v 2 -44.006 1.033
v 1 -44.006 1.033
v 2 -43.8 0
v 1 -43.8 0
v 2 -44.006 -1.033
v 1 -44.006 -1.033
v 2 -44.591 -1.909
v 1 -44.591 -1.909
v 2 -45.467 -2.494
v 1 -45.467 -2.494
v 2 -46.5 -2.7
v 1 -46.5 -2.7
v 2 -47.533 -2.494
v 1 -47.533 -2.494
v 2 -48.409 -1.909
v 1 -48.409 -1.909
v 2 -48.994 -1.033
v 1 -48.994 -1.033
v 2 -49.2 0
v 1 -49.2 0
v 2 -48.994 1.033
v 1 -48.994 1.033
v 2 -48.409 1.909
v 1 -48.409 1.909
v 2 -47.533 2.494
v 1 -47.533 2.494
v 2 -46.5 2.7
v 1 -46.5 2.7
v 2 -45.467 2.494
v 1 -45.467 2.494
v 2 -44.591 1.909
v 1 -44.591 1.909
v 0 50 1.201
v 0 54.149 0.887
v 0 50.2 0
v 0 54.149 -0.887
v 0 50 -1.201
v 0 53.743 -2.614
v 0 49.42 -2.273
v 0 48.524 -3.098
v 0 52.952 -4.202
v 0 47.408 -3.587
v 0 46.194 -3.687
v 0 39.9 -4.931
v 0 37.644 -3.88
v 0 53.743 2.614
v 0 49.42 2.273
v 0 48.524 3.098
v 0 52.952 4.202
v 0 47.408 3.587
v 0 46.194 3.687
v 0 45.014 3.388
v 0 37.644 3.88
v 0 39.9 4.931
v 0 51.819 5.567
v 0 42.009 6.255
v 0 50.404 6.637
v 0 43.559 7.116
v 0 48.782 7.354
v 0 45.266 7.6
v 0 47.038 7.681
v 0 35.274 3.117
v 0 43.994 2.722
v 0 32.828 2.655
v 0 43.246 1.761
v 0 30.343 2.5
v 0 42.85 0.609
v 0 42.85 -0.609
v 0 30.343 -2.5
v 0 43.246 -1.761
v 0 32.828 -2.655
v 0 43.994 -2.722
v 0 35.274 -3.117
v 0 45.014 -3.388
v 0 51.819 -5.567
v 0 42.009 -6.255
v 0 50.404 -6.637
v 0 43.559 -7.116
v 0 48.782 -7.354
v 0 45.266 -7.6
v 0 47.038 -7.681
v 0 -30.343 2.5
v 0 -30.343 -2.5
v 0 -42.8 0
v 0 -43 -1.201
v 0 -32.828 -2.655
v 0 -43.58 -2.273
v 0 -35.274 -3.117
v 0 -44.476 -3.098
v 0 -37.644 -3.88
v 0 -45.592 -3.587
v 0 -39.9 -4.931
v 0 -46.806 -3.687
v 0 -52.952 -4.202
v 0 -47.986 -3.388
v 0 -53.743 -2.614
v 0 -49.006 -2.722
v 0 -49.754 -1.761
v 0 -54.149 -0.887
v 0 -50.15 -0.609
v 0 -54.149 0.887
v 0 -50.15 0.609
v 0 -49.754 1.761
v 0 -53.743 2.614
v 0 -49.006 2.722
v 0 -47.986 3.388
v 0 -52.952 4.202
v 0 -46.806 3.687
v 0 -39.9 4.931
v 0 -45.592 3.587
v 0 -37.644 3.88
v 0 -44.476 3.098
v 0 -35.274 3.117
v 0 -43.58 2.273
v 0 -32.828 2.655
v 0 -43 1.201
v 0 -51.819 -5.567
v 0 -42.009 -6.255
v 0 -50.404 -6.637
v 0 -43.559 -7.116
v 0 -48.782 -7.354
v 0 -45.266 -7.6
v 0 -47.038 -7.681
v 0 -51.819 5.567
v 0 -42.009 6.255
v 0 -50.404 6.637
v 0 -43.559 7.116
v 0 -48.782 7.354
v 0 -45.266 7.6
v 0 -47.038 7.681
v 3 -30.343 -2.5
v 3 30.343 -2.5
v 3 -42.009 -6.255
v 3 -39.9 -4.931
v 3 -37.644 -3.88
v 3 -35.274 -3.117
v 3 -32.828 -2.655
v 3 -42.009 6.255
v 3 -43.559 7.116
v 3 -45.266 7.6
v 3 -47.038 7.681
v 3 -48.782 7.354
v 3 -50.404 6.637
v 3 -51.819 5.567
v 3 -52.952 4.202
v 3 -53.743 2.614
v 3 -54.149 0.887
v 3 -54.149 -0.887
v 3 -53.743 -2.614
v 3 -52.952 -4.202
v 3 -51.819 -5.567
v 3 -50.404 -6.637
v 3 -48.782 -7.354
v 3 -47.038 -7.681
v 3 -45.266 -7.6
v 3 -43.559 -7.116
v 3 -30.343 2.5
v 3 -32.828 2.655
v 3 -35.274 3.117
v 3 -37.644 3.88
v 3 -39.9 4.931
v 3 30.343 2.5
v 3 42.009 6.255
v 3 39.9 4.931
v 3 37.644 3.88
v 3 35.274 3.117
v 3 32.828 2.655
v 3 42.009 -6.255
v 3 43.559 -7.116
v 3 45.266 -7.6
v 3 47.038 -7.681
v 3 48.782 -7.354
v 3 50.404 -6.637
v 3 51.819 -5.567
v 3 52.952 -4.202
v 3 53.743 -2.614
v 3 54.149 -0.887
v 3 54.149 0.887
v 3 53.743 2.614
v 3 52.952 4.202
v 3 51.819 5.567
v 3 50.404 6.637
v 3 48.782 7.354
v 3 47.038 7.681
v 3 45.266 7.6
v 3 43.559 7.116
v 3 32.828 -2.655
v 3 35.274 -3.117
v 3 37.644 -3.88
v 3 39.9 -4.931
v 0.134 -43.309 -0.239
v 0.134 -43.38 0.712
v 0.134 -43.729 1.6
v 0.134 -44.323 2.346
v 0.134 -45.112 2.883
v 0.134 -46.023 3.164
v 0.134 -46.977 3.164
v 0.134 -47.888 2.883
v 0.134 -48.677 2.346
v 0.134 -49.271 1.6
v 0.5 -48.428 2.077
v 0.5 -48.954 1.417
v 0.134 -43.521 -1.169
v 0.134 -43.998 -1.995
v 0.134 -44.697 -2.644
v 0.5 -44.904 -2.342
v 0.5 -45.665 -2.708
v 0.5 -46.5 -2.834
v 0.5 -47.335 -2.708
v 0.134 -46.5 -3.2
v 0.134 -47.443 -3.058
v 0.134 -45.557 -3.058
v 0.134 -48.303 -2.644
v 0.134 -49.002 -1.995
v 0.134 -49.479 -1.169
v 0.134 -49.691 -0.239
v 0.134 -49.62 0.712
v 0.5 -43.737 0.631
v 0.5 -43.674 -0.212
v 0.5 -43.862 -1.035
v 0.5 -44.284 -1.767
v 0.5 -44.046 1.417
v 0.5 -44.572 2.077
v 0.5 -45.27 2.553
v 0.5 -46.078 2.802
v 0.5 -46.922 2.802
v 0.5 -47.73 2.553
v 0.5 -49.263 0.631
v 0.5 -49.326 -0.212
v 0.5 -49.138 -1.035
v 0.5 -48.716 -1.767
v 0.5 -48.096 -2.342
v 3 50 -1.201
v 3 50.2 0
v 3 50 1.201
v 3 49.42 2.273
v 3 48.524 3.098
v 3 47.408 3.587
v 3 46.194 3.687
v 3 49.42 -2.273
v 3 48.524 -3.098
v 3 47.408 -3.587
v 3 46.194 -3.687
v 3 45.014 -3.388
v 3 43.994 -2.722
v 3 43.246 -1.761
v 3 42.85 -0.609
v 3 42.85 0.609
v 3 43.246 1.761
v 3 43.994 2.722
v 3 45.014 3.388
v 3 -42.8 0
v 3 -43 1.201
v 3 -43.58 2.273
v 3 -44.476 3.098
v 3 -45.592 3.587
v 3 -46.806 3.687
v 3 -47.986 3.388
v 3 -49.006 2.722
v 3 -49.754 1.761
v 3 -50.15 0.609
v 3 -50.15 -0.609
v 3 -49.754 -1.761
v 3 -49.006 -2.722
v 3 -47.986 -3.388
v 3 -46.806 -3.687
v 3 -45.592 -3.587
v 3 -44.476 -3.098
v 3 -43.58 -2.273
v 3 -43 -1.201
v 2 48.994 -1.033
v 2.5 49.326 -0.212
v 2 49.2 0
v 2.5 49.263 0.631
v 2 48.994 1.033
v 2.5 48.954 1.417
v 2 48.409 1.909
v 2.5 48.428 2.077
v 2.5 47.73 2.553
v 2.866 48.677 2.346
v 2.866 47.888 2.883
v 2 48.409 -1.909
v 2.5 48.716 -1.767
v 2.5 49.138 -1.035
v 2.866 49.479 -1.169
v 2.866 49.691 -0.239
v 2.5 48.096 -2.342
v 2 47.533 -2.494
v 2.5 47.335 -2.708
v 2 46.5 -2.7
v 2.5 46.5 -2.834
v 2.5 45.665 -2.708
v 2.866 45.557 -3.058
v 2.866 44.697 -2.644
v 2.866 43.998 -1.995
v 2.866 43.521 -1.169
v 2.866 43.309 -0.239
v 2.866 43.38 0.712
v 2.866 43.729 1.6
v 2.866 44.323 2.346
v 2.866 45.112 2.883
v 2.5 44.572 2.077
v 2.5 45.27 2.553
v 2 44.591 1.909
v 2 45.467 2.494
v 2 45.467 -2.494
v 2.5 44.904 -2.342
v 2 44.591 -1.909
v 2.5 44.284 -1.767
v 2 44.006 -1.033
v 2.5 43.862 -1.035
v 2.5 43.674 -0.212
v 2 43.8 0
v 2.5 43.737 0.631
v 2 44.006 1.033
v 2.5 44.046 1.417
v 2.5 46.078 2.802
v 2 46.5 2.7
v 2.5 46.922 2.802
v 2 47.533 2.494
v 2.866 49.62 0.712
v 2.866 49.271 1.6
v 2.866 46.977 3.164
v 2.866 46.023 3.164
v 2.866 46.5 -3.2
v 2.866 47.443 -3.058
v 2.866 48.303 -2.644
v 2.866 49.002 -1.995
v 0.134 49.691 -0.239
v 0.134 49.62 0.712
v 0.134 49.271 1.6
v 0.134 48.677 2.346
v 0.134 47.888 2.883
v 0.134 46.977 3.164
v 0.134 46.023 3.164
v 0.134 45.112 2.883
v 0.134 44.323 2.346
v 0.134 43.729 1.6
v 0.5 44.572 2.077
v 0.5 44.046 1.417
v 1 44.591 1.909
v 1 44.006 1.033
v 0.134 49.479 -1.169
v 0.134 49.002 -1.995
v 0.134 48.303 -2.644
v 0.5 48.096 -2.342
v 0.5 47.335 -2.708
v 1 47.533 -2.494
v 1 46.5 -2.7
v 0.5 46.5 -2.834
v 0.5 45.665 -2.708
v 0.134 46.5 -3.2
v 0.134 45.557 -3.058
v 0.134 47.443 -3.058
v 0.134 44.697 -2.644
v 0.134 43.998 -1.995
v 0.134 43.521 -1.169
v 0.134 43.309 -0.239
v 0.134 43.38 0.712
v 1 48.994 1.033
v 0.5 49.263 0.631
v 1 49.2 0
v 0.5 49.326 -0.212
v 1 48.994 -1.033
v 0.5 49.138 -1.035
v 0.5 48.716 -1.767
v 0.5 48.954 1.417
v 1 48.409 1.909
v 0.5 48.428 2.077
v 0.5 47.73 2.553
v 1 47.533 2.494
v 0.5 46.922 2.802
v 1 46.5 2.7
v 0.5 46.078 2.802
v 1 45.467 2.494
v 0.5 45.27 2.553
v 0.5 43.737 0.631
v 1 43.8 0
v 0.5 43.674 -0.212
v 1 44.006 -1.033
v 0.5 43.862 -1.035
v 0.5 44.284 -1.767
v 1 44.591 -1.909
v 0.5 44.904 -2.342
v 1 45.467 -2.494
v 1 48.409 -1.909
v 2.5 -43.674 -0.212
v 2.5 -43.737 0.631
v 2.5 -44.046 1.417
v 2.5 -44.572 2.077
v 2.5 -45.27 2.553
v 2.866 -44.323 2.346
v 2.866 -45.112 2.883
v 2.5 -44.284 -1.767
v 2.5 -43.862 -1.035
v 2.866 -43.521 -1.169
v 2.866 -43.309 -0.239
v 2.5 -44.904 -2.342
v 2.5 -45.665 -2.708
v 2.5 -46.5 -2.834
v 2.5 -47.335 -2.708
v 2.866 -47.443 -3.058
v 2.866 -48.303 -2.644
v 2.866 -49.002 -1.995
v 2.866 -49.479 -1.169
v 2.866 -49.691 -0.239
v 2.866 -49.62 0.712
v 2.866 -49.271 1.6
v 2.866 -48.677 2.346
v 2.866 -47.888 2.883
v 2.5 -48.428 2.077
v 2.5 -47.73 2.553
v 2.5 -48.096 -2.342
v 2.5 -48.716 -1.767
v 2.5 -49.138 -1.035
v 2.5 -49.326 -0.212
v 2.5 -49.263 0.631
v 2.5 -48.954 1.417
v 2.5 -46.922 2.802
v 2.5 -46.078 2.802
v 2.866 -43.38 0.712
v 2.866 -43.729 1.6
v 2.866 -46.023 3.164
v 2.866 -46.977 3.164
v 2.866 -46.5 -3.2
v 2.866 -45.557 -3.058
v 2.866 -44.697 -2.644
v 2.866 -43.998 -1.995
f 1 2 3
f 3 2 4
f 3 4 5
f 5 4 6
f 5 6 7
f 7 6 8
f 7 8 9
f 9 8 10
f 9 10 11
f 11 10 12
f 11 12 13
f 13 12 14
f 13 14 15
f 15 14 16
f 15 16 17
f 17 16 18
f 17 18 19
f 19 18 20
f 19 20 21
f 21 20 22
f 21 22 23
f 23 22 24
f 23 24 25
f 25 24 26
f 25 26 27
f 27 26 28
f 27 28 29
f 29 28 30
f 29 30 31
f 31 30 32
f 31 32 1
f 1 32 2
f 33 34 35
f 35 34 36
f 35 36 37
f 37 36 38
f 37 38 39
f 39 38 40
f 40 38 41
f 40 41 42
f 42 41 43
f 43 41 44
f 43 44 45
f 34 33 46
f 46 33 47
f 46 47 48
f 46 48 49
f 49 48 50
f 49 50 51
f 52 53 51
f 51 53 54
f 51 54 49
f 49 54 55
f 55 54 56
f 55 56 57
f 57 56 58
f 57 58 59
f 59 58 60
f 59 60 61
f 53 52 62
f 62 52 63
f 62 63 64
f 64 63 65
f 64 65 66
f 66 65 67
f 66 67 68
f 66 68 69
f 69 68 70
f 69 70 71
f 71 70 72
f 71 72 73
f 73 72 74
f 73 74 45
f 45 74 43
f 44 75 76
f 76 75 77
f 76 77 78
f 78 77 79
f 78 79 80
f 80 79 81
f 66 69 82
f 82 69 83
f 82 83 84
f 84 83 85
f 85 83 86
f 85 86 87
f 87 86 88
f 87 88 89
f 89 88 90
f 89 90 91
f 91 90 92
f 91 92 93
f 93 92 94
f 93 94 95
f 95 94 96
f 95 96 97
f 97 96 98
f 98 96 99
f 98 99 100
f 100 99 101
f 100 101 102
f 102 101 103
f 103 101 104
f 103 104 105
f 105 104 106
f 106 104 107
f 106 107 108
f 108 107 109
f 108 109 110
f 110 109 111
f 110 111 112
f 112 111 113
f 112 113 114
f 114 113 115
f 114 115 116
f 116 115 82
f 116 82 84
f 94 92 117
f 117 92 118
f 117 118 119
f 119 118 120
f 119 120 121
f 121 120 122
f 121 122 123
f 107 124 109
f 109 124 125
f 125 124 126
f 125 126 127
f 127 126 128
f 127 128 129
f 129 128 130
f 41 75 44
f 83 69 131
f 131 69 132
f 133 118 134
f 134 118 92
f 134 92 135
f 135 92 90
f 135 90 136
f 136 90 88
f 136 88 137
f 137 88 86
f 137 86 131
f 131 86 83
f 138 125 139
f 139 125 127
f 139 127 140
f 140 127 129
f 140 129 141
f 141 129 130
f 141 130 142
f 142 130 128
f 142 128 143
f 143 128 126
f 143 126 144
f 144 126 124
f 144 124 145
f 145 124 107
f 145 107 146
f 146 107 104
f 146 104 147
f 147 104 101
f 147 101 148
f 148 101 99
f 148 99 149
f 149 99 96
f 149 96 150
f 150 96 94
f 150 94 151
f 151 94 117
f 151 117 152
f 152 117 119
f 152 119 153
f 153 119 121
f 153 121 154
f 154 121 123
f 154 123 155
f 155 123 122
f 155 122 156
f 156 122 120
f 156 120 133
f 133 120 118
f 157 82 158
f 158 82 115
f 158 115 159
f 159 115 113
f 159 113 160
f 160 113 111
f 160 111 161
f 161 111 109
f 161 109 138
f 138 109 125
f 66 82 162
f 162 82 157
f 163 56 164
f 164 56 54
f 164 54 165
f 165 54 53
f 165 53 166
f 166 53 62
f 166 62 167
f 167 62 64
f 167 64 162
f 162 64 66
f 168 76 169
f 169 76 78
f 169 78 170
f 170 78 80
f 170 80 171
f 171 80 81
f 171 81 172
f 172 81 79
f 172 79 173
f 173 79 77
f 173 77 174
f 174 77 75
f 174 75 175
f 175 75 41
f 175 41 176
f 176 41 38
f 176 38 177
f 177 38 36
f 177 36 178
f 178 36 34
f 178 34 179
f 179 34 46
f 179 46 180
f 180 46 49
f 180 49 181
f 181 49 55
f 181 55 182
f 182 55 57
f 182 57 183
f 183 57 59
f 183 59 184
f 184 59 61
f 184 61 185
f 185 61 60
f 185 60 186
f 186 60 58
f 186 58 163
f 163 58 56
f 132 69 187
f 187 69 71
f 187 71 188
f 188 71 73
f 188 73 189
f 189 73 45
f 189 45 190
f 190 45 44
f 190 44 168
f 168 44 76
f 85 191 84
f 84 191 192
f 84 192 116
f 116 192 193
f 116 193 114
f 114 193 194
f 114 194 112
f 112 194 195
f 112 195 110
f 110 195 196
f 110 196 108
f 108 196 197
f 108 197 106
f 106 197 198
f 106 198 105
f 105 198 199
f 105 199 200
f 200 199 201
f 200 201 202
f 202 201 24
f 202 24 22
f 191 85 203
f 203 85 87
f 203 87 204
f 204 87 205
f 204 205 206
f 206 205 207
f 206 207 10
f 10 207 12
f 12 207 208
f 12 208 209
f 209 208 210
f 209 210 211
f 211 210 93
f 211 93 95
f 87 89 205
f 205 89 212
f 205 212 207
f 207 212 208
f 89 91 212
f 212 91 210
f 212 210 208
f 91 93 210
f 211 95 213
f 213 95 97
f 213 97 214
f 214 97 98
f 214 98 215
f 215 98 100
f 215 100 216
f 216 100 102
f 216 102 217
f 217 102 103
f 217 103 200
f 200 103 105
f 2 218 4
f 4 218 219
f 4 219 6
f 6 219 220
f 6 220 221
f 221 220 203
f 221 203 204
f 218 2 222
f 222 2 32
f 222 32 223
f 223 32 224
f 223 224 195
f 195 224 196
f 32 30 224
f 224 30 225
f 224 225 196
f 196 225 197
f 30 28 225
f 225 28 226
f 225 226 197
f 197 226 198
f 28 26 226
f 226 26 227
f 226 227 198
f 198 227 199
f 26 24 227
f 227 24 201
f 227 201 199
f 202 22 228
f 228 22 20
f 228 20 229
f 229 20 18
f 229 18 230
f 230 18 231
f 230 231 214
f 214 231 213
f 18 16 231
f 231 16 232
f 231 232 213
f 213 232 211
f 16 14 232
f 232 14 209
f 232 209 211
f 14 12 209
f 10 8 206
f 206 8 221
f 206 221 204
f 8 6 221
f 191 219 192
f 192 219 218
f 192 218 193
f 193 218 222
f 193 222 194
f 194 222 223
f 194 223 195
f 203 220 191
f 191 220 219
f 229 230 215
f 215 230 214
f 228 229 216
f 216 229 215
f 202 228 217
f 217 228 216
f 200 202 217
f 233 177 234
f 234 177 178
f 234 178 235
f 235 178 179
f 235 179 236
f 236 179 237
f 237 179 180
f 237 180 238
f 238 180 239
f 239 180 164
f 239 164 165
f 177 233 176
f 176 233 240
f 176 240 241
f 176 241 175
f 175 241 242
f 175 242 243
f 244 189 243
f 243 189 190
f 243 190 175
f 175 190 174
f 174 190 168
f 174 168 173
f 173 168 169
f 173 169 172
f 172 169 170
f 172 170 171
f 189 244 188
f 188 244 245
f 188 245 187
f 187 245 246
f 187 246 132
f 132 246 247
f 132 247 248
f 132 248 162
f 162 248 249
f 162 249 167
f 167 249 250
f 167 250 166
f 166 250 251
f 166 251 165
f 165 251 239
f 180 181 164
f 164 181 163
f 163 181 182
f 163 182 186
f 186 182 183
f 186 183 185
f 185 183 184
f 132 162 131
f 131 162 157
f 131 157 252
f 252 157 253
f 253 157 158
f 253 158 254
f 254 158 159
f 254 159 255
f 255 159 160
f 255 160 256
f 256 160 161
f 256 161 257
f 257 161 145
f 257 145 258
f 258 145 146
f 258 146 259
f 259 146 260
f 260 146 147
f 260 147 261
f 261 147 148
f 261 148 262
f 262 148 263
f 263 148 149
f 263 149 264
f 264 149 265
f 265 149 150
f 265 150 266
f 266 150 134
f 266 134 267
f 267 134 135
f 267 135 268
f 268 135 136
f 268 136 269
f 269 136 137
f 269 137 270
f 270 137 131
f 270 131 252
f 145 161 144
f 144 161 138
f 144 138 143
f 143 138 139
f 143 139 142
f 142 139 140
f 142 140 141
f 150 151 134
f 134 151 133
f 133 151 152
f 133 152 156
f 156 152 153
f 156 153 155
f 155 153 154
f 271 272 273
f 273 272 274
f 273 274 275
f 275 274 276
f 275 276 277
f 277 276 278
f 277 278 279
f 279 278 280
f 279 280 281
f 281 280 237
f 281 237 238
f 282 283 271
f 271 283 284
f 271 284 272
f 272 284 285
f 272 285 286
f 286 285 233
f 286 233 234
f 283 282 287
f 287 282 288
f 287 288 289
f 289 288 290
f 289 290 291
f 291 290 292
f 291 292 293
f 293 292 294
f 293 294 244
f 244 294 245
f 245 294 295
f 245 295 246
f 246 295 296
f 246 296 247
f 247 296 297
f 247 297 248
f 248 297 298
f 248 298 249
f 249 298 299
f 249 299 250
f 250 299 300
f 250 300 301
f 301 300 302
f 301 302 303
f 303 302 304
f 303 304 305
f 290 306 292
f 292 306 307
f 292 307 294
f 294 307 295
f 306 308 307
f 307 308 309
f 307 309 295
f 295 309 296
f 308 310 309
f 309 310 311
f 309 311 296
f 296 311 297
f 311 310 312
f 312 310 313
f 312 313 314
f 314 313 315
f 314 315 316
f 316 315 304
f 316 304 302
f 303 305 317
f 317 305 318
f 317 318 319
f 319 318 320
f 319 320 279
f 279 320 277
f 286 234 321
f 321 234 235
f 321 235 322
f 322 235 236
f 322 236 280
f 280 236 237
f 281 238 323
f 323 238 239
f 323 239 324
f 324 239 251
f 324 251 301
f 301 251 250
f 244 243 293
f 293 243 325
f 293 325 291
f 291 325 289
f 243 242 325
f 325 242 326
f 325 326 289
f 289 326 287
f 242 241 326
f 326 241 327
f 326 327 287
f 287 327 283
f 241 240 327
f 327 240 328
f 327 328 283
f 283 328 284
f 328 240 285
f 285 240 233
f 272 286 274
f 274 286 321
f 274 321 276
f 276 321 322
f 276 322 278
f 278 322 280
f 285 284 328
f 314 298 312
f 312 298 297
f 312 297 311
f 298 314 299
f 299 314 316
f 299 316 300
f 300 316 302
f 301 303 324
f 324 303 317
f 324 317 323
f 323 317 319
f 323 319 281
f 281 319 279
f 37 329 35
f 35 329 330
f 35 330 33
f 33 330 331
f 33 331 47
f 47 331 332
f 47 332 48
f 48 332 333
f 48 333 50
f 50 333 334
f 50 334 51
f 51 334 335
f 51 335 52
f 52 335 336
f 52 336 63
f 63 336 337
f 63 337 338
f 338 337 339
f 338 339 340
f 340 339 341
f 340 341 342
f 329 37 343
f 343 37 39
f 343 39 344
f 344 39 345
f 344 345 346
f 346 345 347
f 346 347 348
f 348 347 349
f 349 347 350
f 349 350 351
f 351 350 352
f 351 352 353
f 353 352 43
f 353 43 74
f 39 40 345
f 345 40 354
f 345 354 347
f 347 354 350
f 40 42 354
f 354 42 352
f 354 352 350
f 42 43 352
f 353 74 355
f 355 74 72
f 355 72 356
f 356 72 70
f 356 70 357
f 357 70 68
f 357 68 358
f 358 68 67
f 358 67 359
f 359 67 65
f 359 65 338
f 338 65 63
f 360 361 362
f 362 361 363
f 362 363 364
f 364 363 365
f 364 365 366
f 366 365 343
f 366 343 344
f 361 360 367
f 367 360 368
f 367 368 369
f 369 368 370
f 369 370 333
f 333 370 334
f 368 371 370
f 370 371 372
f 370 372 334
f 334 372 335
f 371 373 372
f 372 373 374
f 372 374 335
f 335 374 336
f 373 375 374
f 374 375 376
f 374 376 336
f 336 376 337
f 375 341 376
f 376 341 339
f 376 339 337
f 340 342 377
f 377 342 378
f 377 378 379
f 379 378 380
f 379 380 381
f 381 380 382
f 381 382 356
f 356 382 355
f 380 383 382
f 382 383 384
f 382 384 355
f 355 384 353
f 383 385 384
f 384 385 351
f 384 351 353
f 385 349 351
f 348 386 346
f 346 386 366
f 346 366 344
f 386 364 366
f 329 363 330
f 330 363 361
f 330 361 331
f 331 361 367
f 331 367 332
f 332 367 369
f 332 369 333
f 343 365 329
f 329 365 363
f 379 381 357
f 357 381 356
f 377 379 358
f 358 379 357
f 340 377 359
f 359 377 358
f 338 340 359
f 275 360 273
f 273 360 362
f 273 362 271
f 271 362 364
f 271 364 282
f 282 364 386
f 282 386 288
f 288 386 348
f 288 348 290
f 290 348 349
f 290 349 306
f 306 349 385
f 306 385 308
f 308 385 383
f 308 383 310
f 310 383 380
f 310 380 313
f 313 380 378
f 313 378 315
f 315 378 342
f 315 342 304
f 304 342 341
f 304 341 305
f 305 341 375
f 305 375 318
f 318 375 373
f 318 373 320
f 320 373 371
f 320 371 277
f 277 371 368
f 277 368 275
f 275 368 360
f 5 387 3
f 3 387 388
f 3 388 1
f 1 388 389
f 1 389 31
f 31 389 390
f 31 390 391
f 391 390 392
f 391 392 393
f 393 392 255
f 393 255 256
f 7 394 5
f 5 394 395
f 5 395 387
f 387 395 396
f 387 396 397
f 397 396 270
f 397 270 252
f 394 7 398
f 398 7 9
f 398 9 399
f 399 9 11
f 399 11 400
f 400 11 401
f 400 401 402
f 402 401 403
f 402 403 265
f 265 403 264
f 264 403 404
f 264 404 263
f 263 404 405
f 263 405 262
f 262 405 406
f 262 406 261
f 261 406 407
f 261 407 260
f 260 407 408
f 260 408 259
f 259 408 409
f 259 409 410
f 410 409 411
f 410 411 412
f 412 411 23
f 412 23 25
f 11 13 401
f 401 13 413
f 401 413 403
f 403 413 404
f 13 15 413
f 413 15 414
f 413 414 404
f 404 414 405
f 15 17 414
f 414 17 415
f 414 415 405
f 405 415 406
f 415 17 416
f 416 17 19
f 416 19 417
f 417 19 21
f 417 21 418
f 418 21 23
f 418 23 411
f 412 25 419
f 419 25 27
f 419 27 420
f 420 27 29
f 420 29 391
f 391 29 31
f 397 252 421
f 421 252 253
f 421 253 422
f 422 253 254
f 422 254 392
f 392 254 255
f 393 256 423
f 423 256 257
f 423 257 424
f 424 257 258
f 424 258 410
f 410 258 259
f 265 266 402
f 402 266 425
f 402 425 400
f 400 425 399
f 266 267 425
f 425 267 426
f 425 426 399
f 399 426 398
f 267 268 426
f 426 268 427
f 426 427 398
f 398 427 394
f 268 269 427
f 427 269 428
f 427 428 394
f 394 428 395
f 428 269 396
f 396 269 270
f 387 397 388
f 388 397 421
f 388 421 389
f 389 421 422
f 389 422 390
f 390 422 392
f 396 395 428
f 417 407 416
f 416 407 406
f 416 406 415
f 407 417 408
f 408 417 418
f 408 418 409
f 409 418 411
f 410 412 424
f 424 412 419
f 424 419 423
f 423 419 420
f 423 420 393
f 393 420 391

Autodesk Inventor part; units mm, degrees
ref_plane "YZ Plane" through (0, 0, 0) normal (1, 0, 0) x (0, 1, 0)
ref_plane "XZ Plane" through (0, 0, 0) normal (0, 1, 0) x (-1, 0, 0)
ref_plane "XY Plane" through (0, 0, 0) normal (0, 0, 1) x (1, 0, 0)
sketch "Sketch1" plane through (0, 0, 0) normal (1, 0, 0) x (0, 1, 0)
  line L0 (0, 8.6387) -> (0, -8.0216)
  line L1 (-27.4792, 0) -> (24.1471, 0)
  circle A0 centre (-46.5, 0) radius 2.7
  circle A1 centre (46.5, 0) radius 2.7
  arc A2 (42.0088, -6.2545) -> (42.0088, 6.2545) centre (46.5, 0) ccw
  arc A3 (-42.0088, 6.2545) -> (-42.0088, -6.2545) centre (-46.5, 0) ccw
  line L2 (0, 2.5) -> (30.3433, 2.5)
  line L3 (0, 2.5) -> (-30.3433, 2.5)
  line L4 (0, -2.5) -> (-30.3433, -2.5)
  line L5 (0, -2.5) -> (30.3433, -2.5)
  arc A4 (30.3433, 2.5) -> (42.0088, 6.2545) centre (30.3433, 22.5) ccw
  arc A5 (42.0088, -6.2545) -> (30.3433, -2.5) centre (30.3433, -22.5) ccw
  arc A6 (-42.0088, 6.2545) -> (-30.3433, 2.5) centre (-30.3433, 22.5) ccw
  arc A7 (-30.3433, -2.5) -> (-42.0088, -6.2545) centre (-30.3433, -22.5) ccw
  point P0 (0, 0)
  point P1 (46.5, -7.7)
  point P2 (46.5, 7.7)
  point P3 (-46.5, -7.7)
  point P4 (-46.5, 7.7)
  point P5 (-39.2171, 2.5)
  point P6 (-39.2171, -2.5)
  point P7 (39.2171, -2.5)
  point P8 (39.2171, 2.5)
  dimension "d5" = 93
  dimension "d3" = 5
  dimension "d2" = 5
  dimension "d4" = 5.4
  dimension "d1" = 5
  dimension "d0" = 20
extrude "Extrusion1" add sketch "Sketch1" along normal blind 3
fillet "Fillet1" radius 1 4 edges at (3, 43.8, 0) (0, 43.8, 0) (3, -49.2, 0) (0, -49.2, 0)
properties part number "ön differansiyel"
